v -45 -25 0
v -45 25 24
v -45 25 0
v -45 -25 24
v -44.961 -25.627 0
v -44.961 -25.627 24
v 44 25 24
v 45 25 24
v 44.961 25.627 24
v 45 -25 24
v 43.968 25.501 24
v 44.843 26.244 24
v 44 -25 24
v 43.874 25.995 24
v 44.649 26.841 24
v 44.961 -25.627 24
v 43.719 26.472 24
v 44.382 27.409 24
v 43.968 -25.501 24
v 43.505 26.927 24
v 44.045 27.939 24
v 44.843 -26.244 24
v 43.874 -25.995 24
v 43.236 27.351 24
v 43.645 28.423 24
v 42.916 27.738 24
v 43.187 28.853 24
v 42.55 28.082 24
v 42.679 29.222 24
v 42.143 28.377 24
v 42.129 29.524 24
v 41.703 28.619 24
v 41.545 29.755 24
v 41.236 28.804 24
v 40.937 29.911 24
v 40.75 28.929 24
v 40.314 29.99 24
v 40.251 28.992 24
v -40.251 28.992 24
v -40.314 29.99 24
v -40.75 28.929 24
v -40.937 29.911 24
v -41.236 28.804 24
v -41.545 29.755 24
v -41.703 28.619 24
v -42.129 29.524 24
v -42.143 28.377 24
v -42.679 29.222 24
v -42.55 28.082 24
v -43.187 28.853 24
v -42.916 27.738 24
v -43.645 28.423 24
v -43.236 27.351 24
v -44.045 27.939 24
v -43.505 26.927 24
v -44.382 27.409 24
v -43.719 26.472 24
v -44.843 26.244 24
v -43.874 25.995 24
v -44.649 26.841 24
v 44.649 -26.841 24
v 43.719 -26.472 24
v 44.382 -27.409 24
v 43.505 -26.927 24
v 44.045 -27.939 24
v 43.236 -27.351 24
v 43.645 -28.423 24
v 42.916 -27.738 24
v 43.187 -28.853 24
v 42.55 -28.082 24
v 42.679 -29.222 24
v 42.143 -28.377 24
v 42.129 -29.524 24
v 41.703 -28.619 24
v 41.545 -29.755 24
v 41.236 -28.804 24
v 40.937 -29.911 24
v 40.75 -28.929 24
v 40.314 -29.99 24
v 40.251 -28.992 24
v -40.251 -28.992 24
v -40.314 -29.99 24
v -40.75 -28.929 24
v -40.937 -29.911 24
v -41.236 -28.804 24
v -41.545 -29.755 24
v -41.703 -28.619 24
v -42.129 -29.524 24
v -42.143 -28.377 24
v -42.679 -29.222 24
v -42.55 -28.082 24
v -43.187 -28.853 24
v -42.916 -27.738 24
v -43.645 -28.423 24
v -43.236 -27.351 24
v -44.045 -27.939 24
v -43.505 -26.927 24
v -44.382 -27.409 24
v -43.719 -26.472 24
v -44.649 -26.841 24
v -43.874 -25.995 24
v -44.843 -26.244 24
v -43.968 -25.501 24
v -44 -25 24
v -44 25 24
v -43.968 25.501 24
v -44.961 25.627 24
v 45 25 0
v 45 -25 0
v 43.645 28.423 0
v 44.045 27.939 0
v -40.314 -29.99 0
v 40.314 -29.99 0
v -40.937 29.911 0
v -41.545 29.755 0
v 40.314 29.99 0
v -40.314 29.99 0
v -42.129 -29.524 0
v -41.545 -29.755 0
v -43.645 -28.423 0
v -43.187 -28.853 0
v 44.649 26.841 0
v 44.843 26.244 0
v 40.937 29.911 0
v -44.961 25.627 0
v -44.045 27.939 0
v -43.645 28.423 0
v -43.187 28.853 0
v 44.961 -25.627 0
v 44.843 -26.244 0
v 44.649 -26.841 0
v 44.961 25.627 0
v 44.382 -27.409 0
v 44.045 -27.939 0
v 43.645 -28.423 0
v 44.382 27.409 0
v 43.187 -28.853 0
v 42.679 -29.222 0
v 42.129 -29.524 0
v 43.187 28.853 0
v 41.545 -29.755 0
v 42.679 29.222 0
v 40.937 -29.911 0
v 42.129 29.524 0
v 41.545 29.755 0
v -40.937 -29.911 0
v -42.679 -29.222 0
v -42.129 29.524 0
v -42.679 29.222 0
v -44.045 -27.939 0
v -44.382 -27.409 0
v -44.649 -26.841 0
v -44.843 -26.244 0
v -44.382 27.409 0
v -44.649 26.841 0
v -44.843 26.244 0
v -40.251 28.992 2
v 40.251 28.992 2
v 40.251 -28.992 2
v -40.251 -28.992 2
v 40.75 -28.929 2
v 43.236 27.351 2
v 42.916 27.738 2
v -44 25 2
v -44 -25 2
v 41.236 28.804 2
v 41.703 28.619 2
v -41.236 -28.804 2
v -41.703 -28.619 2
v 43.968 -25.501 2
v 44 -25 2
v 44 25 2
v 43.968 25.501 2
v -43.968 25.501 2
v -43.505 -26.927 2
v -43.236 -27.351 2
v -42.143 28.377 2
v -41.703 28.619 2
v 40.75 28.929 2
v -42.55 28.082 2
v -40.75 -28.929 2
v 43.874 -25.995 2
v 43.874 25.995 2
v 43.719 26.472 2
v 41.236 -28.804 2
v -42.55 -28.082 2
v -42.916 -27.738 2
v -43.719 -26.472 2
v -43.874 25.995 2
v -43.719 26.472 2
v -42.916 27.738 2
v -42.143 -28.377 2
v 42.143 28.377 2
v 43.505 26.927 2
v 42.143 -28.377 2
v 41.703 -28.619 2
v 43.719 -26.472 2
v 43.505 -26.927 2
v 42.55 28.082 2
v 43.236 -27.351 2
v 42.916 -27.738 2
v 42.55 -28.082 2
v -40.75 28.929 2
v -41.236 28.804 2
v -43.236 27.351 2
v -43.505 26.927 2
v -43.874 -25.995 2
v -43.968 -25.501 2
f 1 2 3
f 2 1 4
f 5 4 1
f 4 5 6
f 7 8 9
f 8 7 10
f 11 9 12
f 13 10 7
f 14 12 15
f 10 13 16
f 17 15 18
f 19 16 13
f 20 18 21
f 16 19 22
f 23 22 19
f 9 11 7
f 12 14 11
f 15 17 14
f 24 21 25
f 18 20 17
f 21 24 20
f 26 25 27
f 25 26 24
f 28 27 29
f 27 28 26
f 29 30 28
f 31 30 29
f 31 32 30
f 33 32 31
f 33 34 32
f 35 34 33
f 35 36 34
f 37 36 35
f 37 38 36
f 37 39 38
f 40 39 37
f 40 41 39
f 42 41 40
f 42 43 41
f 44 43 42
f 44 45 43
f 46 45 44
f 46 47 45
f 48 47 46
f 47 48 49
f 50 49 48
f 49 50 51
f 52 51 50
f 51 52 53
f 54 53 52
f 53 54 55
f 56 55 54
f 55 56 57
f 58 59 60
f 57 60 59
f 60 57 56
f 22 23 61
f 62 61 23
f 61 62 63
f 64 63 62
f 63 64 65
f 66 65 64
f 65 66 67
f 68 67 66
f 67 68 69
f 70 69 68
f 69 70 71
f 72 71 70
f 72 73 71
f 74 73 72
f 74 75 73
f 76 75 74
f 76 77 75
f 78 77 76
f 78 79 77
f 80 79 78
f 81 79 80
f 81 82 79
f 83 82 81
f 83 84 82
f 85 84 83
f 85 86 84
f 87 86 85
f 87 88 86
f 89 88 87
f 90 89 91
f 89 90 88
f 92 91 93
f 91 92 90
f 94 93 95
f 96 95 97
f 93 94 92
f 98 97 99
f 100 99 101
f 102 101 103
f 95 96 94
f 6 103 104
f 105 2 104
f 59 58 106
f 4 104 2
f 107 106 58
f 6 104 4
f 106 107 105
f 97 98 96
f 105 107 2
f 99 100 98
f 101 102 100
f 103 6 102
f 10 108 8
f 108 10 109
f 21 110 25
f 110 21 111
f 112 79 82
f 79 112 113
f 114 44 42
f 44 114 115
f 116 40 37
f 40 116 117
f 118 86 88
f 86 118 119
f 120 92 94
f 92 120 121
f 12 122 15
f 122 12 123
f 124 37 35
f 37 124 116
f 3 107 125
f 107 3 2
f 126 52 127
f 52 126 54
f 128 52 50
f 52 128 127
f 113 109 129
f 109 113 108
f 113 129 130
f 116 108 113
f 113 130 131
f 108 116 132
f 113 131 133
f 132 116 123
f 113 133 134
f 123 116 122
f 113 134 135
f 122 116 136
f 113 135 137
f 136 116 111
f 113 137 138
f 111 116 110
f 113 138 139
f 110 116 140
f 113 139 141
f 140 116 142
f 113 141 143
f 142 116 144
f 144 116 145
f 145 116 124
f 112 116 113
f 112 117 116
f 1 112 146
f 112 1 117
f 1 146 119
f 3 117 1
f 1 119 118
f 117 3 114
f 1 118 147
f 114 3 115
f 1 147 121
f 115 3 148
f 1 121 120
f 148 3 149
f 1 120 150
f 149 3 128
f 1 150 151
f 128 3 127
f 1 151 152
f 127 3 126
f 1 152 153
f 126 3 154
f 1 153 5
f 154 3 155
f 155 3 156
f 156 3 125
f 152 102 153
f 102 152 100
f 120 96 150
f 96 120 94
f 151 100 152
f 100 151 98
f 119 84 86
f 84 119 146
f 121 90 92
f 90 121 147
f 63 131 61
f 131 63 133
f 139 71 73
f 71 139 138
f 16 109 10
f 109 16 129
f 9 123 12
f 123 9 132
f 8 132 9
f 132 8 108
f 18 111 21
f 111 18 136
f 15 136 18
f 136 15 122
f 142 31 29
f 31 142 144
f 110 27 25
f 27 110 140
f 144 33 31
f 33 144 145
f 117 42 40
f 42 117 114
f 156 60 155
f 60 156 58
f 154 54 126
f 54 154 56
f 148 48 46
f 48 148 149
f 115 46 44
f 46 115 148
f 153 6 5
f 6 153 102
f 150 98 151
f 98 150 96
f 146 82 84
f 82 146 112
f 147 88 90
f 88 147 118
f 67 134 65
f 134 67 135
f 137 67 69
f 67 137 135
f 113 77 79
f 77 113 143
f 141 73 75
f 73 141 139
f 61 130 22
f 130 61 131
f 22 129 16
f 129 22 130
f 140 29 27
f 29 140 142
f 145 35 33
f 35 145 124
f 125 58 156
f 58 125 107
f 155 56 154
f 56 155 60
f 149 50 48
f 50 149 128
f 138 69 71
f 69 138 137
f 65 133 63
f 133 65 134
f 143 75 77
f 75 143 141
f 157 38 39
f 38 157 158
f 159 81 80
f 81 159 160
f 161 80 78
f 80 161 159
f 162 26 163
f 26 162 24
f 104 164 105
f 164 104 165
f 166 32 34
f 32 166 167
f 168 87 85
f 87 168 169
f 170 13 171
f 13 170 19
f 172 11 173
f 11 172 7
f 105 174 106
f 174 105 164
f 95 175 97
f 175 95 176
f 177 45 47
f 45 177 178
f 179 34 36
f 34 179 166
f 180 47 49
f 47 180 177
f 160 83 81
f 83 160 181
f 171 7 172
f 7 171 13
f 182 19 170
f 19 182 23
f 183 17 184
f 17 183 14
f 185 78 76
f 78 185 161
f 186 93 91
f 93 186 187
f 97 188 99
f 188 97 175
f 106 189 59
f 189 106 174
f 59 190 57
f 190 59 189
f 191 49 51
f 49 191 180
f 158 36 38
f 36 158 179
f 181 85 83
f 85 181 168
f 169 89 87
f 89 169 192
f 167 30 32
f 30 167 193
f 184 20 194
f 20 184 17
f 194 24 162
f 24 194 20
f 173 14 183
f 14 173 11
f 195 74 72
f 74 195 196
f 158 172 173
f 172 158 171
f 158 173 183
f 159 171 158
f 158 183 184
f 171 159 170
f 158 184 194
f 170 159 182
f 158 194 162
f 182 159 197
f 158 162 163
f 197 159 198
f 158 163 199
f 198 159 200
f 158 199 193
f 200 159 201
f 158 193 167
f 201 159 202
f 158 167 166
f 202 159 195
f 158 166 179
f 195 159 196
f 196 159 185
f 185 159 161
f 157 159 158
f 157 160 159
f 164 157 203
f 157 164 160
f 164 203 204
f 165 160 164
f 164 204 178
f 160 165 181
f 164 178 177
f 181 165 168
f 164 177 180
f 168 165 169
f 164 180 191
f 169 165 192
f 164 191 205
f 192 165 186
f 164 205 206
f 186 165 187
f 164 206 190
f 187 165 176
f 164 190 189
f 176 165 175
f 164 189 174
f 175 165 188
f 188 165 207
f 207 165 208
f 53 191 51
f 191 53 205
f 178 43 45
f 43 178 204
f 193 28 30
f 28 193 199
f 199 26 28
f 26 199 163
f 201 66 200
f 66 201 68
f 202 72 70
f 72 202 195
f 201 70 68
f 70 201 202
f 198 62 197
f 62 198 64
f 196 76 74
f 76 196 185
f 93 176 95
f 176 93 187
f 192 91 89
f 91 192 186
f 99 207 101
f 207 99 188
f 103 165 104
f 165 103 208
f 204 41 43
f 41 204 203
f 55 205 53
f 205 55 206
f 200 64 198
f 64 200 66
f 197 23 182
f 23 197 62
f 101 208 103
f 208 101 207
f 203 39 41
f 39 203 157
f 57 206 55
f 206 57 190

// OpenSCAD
$fn = 50;


difference() {
	union() {
		hull() {
			translate(v = [-40.0000000000, 25.0000000000, 0]) {
				cylinder(h = 24, r = 5);
			}
			translate(v = [40.0000000000, 25.0000000000, 0]) {
				cylinder(h = 24, r = 5);
			}
			translate(v = [-40.0000000000, -25.0000000000, 0]) {
				cylinder(h = 24, r = 5);
			}
			translate(v = [40.0000000000, -25.0000000000, 0]) {
				cylinder(h = 24, r = 5);
			}
		}
	}
	union() {
		translate(v = [0, 0, 2]) {
			hull() {
				translate(v = [-40.0000000000, 25.0000000000, 0]) {
					cylinder(h = 22, r = 4);
				}
				translate(v = [40.0000000000, 25.0000000000, 0]) {
					cylinder(h = 22, r = 4);
				}
				translate(v = [-40.0000000000, -25.0000000000, 0]) {
					cylinder(h = 22, r = 4);
				}
				translate(v = [40.0000000000, -25.0000000000, 0]) {
					cylinder(h = 22, r = 4);
				}
			}
		}
	}
}
